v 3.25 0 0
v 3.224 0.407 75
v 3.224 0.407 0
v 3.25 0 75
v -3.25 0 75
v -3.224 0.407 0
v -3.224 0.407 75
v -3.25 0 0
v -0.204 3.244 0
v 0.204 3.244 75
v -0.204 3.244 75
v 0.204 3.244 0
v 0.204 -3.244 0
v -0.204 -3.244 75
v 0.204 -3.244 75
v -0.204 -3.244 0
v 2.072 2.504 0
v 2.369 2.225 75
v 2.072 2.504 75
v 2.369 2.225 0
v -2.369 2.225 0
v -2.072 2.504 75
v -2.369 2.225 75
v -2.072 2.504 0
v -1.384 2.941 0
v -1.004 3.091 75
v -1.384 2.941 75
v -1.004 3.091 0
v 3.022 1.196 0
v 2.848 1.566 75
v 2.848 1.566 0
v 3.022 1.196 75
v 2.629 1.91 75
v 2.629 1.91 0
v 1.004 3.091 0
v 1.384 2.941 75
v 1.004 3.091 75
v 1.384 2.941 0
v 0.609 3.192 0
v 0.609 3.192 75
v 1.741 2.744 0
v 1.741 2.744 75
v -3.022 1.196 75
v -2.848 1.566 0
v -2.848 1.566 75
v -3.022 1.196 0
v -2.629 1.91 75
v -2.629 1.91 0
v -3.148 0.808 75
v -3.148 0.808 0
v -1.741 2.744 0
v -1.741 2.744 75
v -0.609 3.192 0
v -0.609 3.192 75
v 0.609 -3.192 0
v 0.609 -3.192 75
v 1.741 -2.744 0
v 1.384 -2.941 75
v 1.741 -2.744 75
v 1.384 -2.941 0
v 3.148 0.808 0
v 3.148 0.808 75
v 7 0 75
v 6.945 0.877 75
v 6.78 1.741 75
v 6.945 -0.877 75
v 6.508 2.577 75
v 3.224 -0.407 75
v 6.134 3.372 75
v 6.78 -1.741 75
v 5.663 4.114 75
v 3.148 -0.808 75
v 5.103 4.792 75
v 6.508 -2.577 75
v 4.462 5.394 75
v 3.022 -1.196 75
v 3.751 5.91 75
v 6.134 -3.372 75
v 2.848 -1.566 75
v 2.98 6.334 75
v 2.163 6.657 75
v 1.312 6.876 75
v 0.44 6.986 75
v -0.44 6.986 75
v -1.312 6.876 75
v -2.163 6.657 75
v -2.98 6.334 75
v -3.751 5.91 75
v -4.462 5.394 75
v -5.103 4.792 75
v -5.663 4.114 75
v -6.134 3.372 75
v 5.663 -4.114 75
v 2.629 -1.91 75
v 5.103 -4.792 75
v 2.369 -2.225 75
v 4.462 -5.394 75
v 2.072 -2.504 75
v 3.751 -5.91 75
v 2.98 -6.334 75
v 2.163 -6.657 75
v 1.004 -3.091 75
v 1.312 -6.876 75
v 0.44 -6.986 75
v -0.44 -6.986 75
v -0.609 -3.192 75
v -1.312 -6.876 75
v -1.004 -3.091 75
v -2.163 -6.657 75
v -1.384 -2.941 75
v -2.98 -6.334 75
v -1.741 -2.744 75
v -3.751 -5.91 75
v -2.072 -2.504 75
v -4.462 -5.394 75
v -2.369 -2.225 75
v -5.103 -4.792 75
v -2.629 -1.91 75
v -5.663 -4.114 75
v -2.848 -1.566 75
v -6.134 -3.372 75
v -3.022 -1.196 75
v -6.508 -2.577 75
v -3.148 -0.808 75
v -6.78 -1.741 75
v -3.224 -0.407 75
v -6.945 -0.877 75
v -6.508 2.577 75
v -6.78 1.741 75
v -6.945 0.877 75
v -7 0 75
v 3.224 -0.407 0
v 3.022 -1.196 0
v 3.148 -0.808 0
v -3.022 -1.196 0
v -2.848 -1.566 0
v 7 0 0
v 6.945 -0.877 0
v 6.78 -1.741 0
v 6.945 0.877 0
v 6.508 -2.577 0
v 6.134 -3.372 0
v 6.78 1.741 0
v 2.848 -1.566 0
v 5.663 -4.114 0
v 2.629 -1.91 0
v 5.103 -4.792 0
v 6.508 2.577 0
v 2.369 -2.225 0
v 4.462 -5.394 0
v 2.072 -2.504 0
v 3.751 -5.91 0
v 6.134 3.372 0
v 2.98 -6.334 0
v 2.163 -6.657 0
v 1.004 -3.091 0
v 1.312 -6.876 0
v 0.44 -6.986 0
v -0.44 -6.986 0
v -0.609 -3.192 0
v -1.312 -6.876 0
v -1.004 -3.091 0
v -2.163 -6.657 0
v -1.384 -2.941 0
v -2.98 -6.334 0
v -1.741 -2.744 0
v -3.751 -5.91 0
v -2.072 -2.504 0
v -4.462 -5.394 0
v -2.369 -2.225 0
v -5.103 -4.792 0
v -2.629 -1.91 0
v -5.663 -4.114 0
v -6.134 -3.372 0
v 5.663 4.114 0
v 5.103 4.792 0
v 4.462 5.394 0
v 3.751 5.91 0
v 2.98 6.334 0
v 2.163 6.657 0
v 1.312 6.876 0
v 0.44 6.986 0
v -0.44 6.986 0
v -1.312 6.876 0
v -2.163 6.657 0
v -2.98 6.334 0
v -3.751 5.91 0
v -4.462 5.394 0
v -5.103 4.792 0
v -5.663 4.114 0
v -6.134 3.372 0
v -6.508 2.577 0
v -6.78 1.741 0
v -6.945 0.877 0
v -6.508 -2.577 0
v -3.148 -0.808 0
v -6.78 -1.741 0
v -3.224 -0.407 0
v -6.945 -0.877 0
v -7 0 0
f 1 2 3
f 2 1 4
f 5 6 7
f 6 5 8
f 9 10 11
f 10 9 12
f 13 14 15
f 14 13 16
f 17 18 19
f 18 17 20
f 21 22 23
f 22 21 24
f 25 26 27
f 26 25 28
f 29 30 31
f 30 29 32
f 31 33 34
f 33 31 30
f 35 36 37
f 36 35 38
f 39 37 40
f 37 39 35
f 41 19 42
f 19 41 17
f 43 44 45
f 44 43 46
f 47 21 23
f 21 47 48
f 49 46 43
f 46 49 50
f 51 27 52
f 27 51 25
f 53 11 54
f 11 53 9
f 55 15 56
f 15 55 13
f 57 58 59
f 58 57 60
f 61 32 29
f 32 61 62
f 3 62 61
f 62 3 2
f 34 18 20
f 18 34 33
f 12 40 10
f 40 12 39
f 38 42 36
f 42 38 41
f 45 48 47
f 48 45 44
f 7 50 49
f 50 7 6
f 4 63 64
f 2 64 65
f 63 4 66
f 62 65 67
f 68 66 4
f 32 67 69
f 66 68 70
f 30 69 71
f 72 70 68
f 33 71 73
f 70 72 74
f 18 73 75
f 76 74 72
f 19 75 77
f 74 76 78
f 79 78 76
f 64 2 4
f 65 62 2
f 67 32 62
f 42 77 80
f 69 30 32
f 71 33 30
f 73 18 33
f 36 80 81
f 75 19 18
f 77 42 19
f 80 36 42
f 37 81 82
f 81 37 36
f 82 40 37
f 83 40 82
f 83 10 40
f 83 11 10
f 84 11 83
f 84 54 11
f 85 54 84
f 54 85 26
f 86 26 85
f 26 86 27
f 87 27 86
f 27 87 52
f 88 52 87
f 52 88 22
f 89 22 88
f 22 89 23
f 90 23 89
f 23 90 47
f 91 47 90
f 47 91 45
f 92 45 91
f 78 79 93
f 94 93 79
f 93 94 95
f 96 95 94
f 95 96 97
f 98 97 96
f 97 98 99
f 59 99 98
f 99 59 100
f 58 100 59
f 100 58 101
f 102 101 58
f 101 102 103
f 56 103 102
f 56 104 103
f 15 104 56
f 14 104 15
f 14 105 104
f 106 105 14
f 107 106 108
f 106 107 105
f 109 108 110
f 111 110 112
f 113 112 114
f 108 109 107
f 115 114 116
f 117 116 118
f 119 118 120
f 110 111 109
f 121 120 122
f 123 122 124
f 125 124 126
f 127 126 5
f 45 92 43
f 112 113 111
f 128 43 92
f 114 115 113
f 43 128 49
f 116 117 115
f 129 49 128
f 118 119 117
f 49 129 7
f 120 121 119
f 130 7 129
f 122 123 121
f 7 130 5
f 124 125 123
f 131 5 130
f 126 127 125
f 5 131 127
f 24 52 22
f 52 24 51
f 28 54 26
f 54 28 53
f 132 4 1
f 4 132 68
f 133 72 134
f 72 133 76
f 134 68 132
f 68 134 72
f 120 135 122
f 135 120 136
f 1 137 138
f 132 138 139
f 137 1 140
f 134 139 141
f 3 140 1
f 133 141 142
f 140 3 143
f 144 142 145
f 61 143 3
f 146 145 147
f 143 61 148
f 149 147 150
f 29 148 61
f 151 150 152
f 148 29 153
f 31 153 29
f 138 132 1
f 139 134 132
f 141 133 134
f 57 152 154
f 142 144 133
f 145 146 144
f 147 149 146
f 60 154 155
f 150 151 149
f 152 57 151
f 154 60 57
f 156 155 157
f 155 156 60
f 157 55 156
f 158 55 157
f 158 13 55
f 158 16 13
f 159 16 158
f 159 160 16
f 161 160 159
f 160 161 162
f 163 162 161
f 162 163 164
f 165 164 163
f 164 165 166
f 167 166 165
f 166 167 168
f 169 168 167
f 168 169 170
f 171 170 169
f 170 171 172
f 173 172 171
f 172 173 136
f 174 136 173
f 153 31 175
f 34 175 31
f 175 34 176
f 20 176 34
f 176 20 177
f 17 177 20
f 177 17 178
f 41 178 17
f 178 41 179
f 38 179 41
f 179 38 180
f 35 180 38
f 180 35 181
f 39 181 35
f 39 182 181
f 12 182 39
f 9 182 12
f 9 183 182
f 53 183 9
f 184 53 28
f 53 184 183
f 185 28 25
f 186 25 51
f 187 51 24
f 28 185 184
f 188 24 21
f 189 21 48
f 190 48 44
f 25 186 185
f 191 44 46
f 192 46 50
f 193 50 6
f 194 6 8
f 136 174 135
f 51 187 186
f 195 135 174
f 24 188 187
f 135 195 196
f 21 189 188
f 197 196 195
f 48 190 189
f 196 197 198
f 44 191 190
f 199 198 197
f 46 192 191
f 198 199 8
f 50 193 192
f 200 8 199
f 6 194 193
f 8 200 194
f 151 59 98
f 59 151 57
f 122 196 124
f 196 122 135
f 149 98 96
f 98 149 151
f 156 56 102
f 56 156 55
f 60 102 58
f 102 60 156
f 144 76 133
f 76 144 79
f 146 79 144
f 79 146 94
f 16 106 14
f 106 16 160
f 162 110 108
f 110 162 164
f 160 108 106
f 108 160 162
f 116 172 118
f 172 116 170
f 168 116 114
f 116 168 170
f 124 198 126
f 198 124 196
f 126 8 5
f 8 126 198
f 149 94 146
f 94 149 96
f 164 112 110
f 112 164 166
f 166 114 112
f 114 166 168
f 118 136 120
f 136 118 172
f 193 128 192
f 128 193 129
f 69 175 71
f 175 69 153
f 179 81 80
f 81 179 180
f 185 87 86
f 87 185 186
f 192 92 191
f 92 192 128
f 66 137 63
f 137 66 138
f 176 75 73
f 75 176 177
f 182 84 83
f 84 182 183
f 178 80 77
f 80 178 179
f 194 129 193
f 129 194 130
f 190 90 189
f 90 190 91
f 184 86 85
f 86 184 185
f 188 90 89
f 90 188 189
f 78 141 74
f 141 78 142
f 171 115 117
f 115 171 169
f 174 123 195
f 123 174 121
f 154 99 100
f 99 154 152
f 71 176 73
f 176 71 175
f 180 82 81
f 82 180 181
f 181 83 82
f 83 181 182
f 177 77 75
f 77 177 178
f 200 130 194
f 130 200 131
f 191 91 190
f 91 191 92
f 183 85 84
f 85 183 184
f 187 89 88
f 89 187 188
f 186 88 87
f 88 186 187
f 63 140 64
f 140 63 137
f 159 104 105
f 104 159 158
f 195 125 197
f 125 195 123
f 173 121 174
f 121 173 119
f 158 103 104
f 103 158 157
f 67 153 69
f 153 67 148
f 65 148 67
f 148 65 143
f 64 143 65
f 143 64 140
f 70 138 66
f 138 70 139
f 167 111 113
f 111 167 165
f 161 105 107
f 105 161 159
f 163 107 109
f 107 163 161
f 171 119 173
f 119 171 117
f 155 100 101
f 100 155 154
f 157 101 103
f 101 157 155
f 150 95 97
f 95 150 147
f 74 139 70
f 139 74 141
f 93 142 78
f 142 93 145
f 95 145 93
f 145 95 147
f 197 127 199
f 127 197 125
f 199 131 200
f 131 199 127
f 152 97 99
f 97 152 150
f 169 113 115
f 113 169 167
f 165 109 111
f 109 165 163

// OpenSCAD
$fn = 50;


difference() {
	union() {
		cylinder(h = 75, r = 7.0000000000);
	}
	union() {
		translate(v = [0, 0, -100]) {
			cylinder(h = 200, r = 3.2500000000);
		}
		translate(v = [0, 0, -100]) {
			cylinder(h = 200, r = 1.8000000000);
		}
	}
}
